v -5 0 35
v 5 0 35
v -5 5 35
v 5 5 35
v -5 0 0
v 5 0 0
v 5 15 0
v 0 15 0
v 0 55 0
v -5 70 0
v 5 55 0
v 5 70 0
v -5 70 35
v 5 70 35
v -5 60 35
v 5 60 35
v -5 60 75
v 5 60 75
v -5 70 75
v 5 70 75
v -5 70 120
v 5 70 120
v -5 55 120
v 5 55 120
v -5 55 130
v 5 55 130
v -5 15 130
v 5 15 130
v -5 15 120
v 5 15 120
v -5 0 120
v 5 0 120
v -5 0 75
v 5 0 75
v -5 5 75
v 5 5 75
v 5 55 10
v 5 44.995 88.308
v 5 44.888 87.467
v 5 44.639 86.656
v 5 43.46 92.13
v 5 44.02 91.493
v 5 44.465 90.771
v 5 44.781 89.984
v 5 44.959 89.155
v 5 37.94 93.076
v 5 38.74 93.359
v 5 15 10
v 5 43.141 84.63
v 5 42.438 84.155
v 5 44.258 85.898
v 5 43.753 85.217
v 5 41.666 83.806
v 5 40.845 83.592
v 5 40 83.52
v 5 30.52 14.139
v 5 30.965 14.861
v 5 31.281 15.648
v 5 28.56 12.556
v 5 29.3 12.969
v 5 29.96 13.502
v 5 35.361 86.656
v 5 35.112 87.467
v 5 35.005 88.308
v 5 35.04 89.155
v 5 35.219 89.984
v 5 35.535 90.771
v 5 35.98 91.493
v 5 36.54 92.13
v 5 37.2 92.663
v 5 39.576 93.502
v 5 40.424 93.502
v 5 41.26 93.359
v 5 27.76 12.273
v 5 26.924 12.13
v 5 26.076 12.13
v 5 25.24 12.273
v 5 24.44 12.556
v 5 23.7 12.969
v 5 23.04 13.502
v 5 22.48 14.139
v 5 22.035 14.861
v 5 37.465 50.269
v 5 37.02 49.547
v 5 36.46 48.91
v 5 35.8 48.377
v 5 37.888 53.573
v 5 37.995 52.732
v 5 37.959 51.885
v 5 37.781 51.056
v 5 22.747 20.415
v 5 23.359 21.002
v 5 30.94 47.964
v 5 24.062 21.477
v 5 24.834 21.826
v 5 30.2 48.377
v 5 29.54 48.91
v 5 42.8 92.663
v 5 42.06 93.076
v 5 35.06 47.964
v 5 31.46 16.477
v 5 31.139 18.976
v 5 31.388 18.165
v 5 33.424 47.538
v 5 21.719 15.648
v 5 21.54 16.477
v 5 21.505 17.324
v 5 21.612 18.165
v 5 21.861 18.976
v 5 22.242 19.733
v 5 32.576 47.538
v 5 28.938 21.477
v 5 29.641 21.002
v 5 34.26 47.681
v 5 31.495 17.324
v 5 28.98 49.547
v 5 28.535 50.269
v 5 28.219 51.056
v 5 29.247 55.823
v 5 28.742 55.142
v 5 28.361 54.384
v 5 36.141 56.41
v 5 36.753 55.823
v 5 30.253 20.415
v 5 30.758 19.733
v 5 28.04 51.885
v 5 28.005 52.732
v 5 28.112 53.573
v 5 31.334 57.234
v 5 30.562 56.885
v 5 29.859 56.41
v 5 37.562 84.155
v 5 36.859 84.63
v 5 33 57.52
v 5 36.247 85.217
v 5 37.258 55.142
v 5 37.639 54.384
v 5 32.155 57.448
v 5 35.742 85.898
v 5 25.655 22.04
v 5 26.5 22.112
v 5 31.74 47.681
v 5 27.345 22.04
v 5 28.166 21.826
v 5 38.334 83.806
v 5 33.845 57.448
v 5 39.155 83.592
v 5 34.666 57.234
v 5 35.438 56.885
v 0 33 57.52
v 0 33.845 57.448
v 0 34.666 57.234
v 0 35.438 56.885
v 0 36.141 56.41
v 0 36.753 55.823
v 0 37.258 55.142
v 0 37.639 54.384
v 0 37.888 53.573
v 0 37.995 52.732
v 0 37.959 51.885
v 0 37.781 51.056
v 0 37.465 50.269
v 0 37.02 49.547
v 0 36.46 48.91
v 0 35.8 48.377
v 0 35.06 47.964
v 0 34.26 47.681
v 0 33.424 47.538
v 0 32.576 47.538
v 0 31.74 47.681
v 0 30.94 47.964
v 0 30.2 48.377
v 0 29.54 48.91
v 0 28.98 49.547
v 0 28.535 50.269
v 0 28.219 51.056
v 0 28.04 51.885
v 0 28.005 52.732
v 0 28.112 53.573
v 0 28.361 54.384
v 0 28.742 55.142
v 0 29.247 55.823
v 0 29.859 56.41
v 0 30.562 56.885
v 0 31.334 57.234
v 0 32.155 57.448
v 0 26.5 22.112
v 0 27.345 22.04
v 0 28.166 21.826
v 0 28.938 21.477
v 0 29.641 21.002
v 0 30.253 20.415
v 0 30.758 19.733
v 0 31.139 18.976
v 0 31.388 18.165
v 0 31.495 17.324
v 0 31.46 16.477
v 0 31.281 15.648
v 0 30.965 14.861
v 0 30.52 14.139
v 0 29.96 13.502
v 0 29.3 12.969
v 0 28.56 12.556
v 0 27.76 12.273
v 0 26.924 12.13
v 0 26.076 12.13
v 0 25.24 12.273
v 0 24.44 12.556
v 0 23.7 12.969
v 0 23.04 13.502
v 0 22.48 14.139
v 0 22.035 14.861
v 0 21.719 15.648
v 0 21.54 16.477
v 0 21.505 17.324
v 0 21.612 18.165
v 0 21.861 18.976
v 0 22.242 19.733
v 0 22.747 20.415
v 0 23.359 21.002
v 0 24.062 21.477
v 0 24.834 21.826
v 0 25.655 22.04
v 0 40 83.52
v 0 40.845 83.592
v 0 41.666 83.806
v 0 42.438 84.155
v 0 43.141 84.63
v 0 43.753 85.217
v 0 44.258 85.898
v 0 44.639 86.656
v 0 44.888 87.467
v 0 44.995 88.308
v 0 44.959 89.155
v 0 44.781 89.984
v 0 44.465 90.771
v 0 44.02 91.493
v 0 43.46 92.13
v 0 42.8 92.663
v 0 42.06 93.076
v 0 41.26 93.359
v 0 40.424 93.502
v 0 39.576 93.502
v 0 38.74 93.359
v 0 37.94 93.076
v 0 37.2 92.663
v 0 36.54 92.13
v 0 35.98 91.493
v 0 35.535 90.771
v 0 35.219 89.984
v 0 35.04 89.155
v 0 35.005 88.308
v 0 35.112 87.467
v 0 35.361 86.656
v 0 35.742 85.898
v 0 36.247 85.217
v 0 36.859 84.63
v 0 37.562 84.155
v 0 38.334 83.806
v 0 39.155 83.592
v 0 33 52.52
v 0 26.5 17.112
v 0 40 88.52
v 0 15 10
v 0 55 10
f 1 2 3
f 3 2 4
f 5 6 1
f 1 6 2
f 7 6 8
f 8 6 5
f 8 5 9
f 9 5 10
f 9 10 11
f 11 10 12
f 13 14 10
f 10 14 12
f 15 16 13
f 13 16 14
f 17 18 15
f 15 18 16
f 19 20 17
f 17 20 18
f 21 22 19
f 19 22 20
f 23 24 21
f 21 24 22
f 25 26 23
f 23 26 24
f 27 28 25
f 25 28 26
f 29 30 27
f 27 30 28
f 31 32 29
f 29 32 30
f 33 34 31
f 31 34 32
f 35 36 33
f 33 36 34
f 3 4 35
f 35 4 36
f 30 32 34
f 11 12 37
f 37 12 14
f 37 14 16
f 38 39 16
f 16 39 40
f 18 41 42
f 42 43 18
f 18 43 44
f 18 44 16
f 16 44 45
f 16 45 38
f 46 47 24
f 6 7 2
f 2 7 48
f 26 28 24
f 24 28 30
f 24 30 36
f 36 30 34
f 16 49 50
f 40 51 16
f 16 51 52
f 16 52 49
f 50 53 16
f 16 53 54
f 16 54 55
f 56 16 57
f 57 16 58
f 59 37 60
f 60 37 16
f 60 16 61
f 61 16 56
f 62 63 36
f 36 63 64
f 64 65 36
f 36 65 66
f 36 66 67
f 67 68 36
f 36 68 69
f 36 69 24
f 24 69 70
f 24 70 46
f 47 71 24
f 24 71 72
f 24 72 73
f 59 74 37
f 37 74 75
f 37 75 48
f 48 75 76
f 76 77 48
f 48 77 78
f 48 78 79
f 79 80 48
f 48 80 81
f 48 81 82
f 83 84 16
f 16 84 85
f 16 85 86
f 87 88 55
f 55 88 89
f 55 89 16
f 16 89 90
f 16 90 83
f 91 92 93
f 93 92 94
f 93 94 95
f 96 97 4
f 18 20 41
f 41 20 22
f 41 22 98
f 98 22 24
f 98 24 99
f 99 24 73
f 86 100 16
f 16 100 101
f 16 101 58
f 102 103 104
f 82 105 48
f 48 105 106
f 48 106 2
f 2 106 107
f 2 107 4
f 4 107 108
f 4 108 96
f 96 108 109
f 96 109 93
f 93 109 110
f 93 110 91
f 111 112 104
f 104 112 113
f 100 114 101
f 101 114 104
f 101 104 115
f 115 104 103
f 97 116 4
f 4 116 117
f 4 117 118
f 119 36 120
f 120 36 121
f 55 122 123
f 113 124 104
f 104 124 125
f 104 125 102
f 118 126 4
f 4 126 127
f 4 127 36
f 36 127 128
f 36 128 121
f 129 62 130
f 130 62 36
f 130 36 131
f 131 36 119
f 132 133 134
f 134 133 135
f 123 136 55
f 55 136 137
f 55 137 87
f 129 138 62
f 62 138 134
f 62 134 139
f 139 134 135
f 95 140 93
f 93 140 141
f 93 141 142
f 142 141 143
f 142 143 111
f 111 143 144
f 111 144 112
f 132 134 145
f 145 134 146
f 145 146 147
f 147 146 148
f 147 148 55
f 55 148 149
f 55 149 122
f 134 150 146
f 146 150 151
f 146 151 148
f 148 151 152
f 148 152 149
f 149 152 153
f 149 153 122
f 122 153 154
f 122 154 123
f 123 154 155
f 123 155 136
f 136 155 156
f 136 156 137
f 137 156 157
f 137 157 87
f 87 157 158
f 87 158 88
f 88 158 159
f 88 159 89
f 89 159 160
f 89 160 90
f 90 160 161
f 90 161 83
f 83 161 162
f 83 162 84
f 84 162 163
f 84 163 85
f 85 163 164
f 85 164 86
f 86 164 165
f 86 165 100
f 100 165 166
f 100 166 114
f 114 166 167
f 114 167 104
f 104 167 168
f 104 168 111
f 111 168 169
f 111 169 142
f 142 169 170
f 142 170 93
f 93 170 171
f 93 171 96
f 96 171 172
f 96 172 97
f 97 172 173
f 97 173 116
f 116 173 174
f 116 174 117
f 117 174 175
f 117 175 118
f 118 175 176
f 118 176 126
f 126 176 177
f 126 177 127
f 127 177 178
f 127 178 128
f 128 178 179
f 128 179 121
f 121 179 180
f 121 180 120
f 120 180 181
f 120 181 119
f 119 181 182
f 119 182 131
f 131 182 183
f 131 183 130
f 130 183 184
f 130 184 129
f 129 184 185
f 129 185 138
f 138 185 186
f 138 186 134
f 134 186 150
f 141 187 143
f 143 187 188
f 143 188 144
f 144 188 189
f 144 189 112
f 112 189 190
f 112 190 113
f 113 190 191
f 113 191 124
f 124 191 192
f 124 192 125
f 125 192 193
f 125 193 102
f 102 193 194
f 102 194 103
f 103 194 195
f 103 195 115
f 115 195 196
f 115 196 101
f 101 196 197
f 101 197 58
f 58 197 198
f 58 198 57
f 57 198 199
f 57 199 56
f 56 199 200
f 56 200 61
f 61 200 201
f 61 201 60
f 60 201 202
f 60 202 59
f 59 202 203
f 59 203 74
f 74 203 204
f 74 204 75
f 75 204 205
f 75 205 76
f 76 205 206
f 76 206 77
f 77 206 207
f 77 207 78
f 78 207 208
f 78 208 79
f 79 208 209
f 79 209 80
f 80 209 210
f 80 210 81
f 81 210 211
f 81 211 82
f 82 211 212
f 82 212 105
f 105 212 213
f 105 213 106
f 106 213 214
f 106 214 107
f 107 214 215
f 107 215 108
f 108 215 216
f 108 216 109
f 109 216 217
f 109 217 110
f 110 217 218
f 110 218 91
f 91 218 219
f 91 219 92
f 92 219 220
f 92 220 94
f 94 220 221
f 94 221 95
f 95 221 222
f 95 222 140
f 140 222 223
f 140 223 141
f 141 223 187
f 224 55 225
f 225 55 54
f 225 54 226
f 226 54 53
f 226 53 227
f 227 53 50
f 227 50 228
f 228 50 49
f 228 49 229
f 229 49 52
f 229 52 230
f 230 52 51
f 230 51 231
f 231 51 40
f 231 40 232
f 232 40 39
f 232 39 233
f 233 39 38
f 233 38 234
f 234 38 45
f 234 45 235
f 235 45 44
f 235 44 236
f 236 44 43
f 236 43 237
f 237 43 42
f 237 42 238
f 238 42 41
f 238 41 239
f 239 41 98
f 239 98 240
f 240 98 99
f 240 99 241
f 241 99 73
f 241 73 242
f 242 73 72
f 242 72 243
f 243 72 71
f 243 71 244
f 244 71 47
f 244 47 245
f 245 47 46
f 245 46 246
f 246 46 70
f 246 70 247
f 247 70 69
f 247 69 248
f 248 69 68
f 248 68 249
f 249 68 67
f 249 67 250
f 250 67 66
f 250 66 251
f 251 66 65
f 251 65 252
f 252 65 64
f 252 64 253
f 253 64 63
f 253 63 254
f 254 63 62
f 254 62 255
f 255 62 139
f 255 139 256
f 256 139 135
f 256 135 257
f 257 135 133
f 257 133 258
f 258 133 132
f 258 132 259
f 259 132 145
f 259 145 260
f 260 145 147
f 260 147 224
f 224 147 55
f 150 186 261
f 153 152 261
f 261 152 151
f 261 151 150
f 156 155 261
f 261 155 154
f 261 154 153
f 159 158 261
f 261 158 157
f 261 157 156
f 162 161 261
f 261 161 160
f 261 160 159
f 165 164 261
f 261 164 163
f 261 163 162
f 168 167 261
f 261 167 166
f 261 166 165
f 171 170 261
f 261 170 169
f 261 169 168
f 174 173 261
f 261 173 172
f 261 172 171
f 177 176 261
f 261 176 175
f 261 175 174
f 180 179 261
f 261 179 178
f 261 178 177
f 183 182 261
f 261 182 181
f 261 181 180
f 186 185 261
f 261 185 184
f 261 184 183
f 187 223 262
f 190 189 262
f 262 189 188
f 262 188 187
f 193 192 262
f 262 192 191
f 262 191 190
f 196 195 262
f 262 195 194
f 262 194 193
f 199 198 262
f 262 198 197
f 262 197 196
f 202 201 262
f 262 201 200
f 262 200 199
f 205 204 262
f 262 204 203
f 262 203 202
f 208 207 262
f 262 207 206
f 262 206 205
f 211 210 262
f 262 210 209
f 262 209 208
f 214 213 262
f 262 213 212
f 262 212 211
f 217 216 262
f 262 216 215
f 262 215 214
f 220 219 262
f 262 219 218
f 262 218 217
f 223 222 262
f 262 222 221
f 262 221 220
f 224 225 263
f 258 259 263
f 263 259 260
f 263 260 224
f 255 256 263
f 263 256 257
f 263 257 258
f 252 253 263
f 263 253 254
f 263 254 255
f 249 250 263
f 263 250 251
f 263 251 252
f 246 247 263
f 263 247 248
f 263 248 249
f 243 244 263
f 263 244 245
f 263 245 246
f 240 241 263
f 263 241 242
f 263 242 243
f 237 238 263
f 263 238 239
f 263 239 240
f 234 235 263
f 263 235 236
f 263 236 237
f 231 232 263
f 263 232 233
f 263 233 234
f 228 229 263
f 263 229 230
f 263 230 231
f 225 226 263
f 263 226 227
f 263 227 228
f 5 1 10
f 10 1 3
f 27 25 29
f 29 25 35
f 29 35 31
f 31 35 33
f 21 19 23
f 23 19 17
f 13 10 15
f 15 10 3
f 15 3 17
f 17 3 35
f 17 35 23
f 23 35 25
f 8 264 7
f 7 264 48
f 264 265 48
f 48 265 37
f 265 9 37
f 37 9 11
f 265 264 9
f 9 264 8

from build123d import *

# Parameters (mm, degrees)
BOSS_EXTRUDE1_DEPTH = 5
SKETCH5_R           = 5
CUT_EXTRUDE4_DEPTH  = 5
SKETCH2_R           = 5
CUT_EXTRUDE5_DEPTH  = 5
BOSS_EXTRUDE2_DEPTH = 5
SKETCH7_W           = 10
SKETCH7_H           = 40
CUT_EXTRUDE6_DEPTH  = 5


with BuildPart() as part:
    # Sketch1 → Boss-Extrude1 (new body)
    with BuildSketch(Plane(origin=(0, 0, 0), x_dir=(0, 0, -1), z_dir=(1, 0, 0))):
        Polygon((-75, 70), (-120, 70), (-120, 55), (-130, 55), (-130, 15), (-120, 15), (-120, 0), (-75, 0), (-75, 5), (-35, 5), (-35, 0), (-10, 0), (0, 0), (0, 15), (0, 55), (0, 70), (-10, 70), (-35, 70), (-35, 60), (-75, 60), align=None)
    extrude(amount=BOSS_EXTRUDE1_DEPTH)

    # Sketch5 → Cut-Extrude4 (cut)
    with BuildSketch(Plane.ZY):
        with Locations((17.111667647, 26.5)):
            Circle(SKETCH5_R)
        with Locations((52.52, 33)):
            Circle(SKETCH5_R)
    extrude(amount=-CUT_EXTRUDE4_DEPTH, mode=Mode.SUBTRACT)

    # Sketch2 → Cut-Extrude5 (cut)
    with BuildSketch(Plane(origin=(5, 0, 0), x_dir=(0, 0, -1), z_dir=(1, 0, 0))):
        with Locations((-88.52, 40)):
            Circle(SKETCH2_R)
    extrude(amount=-CUT_EXTRUDE5_DEPTH, mode=Mode.SUBTRACT)

    # Sketch6 → Boss-Extrude2 (add)
    with BuildSketch(Plane.ZY):
        Polygon((35, 0), (35, 5), (75, 5), (75, 0), (120, 0), (120, 15), (130, 15), (130, 55), (120, 55), (120, 70), (75, 70), (75, 60), (35, 60), (35, 70), (0, 70), (0, 0), align=None)
    extrude(amount=BOSS_EXTRUDE2_DEPTH)

    # Sketch7 → Cut-Extrude6 (cut)
    with BuildSketch(Plane(origin=(5, 0, 0), x_dir=(0, 0, -1), z_dir=(1, 0, 0))):
        with Locations((-5, 35)):
            Rectangle(SKETCH7_W, SKETCH7_H)
    extrude(amount=-CUT_EXTRUDE6_DEPTH, mode=Mode.SUBTRACT)


solid = part.part
